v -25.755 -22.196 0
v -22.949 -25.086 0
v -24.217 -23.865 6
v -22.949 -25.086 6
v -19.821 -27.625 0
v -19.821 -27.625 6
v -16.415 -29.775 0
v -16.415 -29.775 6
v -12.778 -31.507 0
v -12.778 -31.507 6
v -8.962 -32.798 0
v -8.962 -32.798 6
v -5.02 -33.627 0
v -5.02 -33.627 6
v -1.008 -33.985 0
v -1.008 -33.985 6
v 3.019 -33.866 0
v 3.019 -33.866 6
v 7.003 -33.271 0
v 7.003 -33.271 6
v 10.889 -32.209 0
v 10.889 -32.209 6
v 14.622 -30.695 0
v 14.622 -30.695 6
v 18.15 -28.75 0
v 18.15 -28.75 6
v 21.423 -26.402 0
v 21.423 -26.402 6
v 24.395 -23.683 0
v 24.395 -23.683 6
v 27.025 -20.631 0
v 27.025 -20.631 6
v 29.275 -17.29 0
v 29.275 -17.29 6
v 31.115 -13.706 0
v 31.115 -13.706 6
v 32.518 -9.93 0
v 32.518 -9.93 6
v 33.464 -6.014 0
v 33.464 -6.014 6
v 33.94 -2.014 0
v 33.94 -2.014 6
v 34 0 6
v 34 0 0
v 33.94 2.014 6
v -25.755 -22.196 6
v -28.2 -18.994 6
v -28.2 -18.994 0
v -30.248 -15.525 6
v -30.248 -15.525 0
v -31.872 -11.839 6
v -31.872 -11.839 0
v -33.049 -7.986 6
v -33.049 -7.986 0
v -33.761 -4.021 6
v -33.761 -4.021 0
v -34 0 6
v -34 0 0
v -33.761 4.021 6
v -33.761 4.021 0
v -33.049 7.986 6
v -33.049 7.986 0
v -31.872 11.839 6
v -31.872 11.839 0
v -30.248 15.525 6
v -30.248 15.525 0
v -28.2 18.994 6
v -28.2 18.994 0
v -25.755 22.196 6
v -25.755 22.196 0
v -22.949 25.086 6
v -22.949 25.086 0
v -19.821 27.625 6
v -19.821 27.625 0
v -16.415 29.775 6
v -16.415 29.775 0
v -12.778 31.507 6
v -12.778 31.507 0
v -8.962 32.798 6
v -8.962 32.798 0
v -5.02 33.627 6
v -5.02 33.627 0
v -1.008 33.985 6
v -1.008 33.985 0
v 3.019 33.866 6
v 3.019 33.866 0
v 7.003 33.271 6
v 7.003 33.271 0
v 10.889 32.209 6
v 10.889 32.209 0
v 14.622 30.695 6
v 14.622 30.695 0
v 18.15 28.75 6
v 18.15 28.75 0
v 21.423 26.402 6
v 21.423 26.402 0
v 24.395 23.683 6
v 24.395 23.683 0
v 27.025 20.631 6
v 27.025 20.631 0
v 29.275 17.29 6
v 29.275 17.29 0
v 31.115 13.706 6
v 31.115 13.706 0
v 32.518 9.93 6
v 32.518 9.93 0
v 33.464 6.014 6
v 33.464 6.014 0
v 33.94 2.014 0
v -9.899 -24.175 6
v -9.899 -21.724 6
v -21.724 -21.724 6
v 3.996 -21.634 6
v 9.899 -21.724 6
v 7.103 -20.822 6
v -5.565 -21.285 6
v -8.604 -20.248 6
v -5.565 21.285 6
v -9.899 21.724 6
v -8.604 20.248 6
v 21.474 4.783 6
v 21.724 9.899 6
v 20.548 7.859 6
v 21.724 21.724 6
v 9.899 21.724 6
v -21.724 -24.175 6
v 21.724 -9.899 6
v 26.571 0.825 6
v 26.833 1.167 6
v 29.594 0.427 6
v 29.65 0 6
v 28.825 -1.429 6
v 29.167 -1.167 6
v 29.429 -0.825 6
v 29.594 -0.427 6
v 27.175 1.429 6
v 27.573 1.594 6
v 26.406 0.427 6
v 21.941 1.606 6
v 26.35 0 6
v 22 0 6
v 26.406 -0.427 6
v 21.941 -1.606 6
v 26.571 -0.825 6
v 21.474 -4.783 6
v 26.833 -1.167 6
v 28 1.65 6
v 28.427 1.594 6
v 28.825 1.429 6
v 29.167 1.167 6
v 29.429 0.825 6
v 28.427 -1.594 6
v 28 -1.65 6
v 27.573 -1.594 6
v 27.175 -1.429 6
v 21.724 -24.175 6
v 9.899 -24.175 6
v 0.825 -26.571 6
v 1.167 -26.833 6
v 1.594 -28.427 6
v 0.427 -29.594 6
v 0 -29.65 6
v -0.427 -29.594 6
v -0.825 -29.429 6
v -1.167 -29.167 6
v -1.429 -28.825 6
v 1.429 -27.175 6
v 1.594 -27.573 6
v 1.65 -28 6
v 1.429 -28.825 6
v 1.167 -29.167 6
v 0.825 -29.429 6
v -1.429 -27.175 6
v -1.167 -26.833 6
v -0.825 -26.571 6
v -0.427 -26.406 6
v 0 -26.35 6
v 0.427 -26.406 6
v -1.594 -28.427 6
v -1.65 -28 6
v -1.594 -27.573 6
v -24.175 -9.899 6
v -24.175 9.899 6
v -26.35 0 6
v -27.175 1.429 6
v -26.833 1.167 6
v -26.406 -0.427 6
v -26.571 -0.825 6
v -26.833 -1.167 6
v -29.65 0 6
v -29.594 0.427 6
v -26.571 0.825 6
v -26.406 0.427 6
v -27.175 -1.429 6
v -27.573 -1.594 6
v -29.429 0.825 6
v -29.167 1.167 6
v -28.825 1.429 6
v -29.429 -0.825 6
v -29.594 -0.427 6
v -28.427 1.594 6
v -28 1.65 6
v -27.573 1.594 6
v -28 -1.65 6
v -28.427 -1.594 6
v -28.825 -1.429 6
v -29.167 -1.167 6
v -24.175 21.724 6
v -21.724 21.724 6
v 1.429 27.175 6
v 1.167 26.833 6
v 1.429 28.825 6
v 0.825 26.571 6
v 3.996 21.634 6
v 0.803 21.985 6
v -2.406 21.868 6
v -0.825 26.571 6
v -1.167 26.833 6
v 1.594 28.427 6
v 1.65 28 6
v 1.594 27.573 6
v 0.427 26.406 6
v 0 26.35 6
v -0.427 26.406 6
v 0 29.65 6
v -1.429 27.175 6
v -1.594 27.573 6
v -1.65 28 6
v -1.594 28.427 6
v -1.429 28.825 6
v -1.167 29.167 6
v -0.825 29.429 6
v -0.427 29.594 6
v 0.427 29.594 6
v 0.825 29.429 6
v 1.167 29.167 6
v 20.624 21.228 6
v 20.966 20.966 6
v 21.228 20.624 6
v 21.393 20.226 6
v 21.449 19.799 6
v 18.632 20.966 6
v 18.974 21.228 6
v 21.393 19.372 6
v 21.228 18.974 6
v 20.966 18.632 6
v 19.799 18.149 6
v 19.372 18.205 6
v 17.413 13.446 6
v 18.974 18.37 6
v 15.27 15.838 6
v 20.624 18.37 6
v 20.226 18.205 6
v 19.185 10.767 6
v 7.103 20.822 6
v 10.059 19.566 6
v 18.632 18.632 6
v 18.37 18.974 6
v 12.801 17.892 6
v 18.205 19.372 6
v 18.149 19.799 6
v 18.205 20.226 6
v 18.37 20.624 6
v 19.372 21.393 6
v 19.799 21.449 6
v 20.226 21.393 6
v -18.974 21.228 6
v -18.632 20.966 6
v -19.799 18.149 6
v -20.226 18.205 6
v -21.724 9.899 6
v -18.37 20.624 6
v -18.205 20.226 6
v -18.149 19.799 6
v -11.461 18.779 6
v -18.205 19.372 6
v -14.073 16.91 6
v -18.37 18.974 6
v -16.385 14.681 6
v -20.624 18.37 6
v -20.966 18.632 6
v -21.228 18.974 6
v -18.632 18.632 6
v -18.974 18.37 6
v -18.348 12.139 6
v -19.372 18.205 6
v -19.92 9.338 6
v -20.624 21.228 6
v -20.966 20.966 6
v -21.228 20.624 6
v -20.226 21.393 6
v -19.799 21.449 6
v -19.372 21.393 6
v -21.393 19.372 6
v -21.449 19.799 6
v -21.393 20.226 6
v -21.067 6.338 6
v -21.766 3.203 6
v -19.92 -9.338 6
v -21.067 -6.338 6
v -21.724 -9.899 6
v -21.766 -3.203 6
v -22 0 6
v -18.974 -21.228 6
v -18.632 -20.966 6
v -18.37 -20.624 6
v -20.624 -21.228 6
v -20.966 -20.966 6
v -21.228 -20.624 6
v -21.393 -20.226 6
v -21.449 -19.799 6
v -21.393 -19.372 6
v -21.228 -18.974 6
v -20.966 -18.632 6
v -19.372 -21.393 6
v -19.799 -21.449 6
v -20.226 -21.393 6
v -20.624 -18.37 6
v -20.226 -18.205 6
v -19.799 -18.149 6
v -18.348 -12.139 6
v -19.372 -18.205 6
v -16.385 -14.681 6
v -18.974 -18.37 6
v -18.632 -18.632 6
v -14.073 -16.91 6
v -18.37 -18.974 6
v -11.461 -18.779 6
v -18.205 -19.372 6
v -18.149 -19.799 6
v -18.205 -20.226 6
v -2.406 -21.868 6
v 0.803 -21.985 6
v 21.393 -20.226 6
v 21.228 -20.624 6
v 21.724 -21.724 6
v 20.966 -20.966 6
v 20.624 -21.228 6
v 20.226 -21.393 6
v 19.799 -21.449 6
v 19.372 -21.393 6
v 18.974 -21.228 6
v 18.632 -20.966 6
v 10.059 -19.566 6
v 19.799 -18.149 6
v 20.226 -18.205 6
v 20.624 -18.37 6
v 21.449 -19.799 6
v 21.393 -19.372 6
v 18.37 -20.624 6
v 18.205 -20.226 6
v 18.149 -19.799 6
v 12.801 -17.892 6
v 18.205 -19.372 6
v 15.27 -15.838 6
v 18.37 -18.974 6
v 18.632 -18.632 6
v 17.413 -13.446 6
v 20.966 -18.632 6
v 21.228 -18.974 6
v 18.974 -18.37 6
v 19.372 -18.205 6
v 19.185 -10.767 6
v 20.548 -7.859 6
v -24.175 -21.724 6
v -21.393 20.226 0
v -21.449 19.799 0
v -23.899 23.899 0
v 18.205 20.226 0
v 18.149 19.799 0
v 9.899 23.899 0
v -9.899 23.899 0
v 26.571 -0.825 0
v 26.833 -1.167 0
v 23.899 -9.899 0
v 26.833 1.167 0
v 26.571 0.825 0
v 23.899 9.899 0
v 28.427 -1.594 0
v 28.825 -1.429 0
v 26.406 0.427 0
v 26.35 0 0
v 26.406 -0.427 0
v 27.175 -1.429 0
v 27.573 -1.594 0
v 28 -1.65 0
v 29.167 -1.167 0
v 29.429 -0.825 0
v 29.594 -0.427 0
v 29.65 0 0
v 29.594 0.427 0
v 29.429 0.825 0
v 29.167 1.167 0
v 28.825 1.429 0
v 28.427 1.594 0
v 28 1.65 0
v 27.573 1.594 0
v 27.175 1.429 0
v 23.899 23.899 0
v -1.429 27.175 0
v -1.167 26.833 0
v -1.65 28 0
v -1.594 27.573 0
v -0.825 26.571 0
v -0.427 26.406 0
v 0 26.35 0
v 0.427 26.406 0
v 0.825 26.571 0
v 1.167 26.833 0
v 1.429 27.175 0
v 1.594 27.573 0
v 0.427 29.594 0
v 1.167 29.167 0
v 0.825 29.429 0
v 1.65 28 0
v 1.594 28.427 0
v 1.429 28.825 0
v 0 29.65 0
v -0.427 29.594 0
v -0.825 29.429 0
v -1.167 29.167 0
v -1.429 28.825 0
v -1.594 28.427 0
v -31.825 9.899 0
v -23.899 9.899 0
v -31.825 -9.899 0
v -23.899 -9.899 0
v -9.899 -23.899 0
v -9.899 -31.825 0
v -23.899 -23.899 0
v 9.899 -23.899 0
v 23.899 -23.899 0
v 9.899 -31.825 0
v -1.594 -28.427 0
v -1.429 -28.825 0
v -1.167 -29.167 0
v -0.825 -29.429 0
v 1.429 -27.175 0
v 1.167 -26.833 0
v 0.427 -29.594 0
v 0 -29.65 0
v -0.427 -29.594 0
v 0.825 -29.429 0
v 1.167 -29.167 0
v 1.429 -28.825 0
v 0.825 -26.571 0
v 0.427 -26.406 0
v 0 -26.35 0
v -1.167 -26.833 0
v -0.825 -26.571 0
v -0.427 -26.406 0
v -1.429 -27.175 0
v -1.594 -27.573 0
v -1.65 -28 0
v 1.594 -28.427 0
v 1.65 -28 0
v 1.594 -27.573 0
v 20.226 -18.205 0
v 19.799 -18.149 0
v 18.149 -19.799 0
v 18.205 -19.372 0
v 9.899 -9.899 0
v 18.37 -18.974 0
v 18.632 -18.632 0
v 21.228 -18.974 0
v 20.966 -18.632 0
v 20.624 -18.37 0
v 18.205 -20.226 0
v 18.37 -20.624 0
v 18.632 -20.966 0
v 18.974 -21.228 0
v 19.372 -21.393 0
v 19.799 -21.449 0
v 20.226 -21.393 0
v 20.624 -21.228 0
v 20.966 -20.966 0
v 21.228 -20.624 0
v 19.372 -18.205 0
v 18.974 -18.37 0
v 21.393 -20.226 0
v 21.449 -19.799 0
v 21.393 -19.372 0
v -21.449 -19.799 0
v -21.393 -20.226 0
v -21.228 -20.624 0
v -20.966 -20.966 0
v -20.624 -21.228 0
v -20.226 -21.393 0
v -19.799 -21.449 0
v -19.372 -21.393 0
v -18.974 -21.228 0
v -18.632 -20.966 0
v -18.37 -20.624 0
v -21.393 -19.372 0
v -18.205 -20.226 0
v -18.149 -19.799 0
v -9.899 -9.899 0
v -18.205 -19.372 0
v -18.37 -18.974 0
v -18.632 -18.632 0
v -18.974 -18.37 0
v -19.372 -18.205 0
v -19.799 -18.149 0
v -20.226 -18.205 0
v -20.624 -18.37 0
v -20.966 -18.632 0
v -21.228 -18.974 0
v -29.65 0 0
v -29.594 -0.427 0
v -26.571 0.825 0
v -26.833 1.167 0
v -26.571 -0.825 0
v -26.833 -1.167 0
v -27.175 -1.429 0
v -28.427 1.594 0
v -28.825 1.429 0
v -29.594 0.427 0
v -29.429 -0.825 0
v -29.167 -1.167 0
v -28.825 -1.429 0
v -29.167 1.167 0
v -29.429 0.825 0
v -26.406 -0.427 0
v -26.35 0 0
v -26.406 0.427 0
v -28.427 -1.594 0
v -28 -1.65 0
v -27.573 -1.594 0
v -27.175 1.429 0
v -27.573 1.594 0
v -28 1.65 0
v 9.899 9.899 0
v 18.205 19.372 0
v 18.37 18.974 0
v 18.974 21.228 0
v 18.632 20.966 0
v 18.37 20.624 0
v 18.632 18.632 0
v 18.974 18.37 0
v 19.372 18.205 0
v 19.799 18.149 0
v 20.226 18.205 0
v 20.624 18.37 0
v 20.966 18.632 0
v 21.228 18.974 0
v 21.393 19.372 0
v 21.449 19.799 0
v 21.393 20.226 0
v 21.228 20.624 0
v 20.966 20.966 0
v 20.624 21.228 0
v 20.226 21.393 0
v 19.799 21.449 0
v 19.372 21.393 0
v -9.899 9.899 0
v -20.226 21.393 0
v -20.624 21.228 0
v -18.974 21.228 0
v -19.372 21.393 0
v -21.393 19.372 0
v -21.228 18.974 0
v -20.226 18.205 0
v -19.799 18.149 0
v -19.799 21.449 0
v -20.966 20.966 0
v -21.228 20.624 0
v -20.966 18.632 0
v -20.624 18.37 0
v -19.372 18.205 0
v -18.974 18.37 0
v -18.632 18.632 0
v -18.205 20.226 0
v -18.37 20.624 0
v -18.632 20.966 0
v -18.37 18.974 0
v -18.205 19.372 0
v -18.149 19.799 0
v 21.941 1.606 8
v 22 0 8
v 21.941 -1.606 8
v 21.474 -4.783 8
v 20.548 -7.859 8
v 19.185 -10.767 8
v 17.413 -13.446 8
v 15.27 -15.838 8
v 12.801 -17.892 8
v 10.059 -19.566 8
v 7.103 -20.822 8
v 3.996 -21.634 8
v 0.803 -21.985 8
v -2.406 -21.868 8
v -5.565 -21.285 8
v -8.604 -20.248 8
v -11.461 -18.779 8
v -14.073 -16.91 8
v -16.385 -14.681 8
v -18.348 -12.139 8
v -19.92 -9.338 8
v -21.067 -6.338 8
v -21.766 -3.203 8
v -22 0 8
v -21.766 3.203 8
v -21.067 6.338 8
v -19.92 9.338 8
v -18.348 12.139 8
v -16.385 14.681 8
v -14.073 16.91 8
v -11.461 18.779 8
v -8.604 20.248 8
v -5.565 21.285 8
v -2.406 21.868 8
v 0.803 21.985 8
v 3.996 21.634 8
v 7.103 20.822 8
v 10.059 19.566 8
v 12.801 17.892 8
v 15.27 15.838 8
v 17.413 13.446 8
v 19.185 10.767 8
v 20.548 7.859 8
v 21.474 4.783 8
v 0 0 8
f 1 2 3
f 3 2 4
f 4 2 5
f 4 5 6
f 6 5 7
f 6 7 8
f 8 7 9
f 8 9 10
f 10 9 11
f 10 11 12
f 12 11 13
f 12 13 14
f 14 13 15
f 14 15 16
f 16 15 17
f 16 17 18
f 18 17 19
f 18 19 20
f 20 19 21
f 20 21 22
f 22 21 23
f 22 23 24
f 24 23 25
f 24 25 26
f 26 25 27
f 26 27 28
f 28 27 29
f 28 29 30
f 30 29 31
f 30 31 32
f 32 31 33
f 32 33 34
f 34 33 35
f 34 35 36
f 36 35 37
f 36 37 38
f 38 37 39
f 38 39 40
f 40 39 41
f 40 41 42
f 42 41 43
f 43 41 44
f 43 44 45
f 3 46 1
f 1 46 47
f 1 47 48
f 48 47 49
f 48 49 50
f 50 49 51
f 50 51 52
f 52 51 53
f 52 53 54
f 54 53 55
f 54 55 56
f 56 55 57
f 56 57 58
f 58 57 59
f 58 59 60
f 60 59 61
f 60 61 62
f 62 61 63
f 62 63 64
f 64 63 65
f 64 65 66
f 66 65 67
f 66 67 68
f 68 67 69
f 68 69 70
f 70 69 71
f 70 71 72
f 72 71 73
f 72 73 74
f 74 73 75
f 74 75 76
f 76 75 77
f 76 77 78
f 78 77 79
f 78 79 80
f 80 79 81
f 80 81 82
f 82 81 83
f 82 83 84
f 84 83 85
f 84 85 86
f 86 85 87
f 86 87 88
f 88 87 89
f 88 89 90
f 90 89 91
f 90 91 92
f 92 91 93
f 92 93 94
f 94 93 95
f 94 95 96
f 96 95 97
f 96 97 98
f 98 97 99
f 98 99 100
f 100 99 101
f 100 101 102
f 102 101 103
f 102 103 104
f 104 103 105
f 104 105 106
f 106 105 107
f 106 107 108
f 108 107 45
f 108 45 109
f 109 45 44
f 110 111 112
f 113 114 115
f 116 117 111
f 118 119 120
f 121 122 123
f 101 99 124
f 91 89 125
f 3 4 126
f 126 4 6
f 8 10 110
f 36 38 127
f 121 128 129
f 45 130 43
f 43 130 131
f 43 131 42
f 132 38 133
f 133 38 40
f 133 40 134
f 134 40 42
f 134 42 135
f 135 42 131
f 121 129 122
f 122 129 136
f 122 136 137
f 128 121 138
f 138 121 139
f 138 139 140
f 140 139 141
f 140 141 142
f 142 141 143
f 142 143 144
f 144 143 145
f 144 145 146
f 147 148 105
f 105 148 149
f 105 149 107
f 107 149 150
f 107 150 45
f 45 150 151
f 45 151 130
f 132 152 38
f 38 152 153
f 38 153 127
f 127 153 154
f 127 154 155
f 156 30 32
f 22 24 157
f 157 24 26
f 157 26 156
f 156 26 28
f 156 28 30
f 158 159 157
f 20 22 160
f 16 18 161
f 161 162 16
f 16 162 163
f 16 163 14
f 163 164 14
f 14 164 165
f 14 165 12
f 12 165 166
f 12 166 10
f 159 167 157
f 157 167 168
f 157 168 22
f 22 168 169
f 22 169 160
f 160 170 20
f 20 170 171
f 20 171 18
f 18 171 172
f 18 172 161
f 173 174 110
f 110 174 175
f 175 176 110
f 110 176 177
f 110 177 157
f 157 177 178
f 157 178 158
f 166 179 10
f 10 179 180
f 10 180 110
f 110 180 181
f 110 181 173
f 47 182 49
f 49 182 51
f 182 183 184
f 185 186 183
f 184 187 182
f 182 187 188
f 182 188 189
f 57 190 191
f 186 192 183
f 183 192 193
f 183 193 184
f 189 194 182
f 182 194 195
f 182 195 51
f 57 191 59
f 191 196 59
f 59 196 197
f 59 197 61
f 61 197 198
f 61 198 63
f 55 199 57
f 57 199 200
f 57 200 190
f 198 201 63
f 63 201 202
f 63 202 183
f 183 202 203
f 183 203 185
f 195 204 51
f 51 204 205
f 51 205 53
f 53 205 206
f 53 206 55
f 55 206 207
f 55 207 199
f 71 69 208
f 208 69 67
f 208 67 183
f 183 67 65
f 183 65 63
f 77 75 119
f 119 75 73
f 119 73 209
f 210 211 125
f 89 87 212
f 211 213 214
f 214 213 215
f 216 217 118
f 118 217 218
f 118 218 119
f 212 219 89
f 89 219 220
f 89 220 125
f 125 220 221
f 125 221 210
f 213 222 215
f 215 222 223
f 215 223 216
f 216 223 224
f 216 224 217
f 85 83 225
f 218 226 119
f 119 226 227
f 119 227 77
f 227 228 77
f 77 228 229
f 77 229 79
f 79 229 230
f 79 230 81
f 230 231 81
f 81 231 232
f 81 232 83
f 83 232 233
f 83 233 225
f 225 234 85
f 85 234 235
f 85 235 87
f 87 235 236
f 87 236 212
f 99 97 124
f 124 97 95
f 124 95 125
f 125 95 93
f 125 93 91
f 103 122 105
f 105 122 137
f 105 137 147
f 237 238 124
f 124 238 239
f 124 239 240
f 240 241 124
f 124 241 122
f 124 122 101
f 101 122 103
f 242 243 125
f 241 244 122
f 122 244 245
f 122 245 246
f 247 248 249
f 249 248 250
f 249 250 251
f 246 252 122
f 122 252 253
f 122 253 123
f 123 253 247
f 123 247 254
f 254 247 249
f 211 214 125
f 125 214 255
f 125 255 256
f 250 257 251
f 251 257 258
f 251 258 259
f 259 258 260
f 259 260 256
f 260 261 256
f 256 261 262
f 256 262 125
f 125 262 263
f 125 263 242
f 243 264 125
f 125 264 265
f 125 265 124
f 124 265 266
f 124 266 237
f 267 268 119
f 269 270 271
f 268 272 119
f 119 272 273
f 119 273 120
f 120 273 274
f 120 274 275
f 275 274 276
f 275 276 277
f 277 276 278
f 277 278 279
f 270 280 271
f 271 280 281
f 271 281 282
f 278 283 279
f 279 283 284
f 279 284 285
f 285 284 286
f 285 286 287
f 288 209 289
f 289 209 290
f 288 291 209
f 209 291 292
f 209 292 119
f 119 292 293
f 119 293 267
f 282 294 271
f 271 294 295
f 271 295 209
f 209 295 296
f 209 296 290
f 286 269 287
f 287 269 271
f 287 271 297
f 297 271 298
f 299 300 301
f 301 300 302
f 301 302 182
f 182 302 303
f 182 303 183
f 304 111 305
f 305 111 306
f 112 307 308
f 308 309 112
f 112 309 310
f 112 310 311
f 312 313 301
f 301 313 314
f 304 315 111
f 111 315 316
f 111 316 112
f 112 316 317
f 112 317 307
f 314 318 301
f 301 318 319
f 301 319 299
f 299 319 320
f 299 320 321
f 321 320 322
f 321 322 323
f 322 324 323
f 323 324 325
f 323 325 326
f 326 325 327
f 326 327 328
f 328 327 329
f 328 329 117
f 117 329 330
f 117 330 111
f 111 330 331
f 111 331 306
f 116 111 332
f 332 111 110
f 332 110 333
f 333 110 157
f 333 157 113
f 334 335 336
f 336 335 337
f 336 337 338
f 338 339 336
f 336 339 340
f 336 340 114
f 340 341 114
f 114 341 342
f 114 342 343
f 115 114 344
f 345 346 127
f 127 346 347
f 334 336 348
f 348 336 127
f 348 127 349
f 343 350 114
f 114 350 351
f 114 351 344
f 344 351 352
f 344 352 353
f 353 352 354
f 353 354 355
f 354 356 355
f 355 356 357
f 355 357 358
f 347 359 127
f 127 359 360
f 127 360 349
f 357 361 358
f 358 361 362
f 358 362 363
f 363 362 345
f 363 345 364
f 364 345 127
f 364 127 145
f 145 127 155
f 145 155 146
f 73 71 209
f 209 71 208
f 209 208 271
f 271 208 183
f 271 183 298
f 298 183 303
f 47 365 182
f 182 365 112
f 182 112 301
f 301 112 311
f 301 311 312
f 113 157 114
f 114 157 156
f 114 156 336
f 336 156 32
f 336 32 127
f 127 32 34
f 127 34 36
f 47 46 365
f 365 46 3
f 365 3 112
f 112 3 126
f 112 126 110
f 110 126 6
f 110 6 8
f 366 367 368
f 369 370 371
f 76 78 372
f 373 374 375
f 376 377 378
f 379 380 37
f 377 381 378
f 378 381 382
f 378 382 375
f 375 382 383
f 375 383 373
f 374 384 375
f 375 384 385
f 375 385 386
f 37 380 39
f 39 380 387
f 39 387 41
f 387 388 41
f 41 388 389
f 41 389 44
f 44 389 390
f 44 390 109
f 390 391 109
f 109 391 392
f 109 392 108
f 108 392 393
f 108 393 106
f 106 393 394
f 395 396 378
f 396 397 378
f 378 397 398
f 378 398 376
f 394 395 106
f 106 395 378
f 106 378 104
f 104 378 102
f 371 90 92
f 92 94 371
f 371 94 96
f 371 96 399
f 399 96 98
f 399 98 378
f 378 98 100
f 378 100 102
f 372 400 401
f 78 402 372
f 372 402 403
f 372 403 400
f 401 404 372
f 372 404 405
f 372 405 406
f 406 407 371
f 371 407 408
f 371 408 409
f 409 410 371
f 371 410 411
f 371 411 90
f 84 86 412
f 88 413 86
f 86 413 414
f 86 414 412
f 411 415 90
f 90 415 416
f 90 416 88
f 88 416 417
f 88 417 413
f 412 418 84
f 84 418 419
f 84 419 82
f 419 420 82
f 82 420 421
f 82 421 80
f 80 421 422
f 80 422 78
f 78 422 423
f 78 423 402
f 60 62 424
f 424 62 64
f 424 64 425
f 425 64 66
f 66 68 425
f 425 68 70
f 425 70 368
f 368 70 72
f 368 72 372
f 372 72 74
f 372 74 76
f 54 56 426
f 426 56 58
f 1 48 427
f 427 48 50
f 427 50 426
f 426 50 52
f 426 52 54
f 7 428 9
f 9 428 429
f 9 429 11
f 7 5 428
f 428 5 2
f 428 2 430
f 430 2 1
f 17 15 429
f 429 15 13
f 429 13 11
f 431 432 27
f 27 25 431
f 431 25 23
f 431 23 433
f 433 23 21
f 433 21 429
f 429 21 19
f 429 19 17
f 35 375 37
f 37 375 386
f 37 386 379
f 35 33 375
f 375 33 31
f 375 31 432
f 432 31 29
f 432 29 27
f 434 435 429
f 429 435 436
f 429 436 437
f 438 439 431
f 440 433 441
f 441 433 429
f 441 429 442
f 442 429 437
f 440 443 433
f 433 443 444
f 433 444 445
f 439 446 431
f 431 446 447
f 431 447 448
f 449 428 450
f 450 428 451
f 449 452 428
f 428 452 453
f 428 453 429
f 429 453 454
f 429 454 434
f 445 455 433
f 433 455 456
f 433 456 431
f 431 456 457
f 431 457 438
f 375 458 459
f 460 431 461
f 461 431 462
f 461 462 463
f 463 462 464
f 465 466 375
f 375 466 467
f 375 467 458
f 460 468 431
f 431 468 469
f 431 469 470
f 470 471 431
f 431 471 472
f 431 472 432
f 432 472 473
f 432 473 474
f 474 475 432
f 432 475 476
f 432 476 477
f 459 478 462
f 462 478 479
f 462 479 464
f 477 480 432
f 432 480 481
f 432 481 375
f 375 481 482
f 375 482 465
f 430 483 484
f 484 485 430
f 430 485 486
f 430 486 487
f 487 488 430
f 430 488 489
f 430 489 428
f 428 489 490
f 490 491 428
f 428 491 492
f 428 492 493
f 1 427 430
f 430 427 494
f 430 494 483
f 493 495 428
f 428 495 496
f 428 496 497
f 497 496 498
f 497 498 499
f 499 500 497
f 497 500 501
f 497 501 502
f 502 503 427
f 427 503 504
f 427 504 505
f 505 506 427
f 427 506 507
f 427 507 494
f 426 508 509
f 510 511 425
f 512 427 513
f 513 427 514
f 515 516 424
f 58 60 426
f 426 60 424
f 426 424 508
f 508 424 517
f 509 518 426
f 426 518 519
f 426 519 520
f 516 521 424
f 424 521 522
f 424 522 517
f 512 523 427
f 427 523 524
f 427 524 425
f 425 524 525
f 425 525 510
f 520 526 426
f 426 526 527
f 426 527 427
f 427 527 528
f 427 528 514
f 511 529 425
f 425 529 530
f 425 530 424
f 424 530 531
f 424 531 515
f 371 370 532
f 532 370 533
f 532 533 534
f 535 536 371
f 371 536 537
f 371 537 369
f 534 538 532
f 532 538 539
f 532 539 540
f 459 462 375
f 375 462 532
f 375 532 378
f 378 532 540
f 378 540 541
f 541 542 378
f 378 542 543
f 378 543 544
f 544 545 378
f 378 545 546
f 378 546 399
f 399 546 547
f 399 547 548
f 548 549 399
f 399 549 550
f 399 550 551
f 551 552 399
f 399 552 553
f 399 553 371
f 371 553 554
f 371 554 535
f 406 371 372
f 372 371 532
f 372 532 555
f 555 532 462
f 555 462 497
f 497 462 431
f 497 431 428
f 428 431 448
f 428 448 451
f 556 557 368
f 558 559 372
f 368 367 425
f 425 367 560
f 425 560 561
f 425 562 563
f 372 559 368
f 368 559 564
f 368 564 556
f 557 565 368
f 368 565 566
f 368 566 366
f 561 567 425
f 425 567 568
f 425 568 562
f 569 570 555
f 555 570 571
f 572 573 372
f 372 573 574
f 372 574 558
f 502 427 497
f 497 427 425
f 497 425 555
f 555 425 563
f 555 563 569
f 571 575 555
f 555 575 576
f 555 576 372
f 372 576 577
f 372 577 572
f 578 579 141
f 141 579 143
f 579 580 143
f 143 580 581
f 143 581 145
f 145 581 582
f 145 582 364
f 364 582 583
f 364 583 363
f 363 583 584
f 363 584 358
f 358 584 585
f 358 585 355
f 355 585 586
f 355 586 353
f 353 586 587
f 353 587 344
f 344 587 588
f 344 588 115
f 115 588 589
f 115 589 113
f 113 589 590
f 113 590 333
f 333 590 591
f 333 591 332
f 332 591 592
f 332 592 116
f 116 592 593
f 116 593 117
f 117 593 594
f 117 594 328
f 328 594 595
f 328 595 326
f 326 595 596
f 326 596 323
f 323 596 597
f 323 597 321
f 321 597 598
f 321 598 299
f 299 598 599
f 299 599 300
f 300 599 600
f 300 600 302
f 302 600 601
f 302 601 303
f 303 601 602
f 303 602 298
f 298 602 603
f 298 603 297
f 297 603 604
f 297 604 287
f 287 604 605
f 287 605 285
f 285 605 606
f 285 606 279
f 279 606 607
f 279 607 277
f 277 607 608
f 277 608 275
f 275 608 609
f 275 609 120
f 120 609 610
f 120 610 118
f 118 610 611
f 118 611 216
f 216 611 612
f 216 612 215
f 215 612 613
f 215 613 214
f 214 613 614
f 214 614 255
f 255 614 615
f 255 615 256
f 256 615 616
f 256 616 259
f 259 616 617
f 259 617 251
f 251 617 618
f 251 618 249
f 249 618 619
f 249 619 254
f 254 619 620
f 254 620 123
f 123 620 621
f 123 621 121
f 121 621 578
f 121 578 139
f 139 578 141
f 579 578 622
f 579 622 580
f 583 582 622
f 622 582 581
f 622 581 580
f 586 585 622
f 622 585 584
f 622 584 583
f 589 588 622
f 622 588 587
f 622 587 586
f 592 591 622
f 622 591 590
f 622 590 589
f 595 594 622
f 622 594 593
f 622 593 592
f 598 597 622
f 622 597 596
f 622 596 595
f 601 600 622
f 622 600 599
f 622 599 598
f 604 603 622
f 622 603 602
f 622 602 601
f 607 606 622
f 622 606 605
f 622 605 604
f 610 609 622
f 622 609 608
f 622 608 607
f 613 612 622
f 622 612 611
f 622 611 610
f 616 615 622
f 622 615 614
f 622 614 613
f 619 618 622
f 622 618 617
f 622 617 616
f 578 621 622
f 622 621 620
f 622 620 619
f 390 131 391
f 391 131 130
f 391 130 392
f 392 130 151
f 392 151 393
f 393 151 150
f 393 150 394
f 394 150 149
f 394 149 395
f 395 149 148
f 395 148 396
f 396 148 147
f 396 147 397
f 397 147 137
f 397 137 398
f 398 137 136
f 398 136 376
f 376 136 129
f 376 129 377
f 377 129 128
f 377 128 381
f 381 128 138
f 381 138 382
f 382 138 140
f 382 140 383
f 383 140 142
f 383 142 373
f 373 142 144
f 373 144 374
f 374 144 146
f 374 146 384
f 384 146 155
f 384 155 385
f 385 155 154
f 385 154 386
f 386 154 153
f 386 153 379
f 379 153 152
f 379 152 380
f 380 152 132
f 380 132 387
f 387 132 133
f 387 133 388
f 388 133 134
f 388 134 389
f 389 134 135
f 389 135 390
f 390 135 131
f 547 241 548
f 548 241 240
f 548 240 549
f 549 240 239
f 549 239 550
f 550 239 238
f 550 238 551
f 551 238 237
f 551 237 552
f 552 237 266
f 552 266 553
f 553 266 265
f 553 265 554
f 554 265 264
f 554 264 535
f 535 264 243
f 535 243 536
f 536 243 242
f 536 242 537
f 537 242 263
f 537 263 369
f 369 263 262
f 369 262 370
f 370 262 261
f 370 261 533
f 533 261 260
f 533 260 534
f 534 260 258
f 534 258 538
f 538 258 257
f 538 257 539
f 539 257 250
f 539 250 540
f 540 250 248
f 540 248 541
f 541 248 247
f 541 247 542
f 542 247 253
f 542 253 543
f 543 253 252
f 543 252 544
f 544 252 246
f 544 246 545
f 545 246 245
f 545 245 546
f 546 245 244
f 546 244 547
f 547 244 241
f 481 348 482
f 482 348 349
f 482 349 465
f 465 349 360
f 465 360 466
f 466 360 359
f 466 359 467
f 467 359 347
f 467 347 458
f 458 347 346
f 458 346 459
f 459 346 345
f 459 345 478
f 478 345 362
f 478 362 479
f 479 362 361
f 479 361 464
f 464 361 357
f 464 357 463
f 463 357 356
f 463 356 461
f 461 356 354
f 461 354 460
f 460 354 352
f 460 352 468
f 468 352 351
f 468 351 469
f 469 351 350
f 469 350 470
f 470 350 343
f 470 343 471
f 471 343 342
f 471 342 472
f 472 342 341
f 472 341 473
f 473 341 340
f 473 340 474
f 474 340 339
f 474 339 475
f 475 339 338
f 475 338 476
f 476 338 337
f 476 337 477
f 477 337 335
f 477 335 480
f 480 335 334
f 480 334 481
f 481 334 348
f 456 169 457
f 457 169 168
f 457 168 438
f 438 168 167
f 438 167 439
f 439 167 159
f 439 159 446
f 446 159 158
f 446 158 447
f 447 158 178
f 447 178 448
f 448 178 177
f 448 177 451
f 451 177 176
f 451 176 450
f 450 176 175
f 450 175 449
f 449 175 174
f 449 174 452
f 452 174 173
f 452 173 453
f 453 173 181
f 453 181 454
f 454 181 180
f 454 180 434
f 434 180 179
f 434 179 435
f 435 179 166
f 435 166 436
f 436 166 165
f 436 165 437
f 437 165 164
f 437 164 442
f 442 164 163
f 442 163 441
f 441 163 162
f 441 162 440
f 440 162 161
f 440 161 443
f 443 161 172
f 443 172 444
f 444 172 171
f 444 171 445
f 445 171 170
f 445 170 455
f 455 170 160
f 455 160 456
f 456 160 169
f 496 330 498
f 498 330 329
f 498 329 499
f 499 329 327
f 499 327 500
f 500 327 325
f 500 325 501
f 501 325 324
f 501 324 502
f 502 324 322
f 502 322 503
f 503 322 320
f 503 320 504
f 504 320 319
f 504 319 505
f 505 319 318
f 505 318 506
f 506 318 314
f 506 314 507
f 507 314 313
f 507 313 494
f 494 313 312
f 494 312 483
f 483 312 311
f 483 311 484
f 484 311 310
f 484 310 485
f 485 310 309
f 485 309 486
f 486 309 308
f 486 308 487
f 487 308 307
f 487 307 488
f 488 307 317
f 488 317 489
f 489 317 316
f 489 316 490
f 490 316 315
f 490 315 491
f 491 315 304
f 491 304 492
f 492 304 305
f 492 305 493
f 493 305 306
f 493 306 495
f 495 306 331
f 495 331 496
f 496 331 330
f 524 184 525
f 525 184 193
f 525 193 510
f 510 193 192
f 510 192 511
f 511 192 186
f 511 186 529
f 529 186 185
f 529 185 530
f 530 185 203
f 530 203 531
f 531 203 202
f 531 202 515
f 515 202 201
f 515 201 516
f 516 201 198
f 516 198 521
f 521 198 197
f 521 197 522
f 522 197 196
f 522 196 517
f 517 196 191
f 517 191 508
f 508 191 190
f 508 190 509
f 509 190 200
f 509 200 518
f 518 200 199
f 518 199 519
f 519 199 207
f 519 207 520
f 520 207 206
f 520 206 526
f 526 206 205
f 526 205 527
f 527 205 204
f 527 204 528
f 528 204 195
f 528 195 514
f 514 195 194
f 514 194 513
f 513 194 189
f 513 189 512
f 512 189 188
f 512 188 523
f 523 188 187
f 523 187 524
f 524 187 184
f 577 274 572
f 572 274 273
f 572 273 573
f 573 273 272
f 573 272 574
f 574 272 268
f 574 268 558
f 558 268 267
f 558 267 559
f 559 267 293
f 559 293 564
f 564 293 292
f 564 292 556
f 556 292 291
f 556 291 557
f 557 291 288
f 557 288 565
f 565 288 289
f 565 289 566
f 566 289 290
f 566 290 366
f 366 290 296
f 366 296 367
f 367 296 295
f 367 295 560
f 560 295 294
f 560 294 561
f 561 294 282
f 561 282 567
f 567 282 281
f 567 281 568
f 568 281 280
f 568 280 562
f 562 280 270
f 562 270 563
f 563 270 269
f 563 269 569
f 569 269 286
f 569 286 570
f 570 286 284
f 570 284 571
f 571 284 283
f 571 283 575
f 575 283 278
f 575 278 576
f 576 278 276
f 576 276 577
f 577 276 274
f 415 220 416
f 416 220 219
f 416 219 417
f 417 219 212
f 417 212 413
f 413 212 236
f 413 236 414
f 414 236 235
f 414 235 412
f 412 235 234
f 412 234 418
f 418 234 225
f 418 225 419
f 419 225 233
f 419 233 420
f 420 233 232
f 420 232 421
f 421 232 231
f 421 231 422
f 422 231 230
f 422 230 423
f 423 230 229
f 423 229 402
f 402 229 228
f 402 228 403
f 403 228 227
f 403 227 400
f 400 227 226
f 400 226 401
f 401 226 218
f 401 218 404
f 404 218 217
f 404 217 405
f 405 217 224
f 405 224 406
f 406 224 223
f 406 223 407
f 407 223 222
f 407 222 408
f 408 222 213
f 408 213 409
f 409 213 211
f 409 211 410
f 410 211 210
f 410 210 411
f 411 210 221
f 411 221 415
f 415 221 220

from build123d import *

# Parameters (mm, degrees)
SK_DISC_R                 = 34
OUTPUT_DISC_DEPTH         = 6
SK_PILOT_R                = 22
PILOT_BOSS_DEPTH          = 2
SK_OUTHOLE_R              = 1.65
OUTPUT_TAPPED_HOLE_DEPTH  = 6
OUTPUT_HOLE_PATTERN_COUNT = 8


with BuildPart() as part:
    # SK_Disc → Output_Disc (new body)
    with BuildSketch(Plane.XY):
        Circle(SK_DISC_R)
    extrude(amount=OUTPUT_DISC_DEPTH)

    # SK_Pilot → Pilot_Boss (add)
    with BuildSketch(Plane.XY.offset(6)):
        Circle(SK_PILOT_R)
    extrude(amount=PILOT_BOSS_DEPTH)

    # SK_OutHole → Output_Tapped_Hole (cut)
    with BuildSketch(Plane.XY.offset(6)):
        with Locations((28, 0)):
            Circle(SK_OUTHOLE_R)
    output_tapped_hole = extrude(amount=-OUTPUT_TAPPED_HOLE_DEPTH, mode=Mode.SUBTRACT)

    # Output_Hole_Pattern: Output_Tapped_Hole ×8 about axis
    output_hole_pattern_axis = Axis((0, 0, -0.4), (0, 0, 1))
    for i in range(1, OUTPUT_HOLE_PATTERN_COUNT):
        add(output_tapped_hole.rotate(output_hole_pattern_axis, i * 360 / OUTPUT_HOLE_PATTERN_COUNT), mode=Mode.SUBTRACT)


solid = part.part
